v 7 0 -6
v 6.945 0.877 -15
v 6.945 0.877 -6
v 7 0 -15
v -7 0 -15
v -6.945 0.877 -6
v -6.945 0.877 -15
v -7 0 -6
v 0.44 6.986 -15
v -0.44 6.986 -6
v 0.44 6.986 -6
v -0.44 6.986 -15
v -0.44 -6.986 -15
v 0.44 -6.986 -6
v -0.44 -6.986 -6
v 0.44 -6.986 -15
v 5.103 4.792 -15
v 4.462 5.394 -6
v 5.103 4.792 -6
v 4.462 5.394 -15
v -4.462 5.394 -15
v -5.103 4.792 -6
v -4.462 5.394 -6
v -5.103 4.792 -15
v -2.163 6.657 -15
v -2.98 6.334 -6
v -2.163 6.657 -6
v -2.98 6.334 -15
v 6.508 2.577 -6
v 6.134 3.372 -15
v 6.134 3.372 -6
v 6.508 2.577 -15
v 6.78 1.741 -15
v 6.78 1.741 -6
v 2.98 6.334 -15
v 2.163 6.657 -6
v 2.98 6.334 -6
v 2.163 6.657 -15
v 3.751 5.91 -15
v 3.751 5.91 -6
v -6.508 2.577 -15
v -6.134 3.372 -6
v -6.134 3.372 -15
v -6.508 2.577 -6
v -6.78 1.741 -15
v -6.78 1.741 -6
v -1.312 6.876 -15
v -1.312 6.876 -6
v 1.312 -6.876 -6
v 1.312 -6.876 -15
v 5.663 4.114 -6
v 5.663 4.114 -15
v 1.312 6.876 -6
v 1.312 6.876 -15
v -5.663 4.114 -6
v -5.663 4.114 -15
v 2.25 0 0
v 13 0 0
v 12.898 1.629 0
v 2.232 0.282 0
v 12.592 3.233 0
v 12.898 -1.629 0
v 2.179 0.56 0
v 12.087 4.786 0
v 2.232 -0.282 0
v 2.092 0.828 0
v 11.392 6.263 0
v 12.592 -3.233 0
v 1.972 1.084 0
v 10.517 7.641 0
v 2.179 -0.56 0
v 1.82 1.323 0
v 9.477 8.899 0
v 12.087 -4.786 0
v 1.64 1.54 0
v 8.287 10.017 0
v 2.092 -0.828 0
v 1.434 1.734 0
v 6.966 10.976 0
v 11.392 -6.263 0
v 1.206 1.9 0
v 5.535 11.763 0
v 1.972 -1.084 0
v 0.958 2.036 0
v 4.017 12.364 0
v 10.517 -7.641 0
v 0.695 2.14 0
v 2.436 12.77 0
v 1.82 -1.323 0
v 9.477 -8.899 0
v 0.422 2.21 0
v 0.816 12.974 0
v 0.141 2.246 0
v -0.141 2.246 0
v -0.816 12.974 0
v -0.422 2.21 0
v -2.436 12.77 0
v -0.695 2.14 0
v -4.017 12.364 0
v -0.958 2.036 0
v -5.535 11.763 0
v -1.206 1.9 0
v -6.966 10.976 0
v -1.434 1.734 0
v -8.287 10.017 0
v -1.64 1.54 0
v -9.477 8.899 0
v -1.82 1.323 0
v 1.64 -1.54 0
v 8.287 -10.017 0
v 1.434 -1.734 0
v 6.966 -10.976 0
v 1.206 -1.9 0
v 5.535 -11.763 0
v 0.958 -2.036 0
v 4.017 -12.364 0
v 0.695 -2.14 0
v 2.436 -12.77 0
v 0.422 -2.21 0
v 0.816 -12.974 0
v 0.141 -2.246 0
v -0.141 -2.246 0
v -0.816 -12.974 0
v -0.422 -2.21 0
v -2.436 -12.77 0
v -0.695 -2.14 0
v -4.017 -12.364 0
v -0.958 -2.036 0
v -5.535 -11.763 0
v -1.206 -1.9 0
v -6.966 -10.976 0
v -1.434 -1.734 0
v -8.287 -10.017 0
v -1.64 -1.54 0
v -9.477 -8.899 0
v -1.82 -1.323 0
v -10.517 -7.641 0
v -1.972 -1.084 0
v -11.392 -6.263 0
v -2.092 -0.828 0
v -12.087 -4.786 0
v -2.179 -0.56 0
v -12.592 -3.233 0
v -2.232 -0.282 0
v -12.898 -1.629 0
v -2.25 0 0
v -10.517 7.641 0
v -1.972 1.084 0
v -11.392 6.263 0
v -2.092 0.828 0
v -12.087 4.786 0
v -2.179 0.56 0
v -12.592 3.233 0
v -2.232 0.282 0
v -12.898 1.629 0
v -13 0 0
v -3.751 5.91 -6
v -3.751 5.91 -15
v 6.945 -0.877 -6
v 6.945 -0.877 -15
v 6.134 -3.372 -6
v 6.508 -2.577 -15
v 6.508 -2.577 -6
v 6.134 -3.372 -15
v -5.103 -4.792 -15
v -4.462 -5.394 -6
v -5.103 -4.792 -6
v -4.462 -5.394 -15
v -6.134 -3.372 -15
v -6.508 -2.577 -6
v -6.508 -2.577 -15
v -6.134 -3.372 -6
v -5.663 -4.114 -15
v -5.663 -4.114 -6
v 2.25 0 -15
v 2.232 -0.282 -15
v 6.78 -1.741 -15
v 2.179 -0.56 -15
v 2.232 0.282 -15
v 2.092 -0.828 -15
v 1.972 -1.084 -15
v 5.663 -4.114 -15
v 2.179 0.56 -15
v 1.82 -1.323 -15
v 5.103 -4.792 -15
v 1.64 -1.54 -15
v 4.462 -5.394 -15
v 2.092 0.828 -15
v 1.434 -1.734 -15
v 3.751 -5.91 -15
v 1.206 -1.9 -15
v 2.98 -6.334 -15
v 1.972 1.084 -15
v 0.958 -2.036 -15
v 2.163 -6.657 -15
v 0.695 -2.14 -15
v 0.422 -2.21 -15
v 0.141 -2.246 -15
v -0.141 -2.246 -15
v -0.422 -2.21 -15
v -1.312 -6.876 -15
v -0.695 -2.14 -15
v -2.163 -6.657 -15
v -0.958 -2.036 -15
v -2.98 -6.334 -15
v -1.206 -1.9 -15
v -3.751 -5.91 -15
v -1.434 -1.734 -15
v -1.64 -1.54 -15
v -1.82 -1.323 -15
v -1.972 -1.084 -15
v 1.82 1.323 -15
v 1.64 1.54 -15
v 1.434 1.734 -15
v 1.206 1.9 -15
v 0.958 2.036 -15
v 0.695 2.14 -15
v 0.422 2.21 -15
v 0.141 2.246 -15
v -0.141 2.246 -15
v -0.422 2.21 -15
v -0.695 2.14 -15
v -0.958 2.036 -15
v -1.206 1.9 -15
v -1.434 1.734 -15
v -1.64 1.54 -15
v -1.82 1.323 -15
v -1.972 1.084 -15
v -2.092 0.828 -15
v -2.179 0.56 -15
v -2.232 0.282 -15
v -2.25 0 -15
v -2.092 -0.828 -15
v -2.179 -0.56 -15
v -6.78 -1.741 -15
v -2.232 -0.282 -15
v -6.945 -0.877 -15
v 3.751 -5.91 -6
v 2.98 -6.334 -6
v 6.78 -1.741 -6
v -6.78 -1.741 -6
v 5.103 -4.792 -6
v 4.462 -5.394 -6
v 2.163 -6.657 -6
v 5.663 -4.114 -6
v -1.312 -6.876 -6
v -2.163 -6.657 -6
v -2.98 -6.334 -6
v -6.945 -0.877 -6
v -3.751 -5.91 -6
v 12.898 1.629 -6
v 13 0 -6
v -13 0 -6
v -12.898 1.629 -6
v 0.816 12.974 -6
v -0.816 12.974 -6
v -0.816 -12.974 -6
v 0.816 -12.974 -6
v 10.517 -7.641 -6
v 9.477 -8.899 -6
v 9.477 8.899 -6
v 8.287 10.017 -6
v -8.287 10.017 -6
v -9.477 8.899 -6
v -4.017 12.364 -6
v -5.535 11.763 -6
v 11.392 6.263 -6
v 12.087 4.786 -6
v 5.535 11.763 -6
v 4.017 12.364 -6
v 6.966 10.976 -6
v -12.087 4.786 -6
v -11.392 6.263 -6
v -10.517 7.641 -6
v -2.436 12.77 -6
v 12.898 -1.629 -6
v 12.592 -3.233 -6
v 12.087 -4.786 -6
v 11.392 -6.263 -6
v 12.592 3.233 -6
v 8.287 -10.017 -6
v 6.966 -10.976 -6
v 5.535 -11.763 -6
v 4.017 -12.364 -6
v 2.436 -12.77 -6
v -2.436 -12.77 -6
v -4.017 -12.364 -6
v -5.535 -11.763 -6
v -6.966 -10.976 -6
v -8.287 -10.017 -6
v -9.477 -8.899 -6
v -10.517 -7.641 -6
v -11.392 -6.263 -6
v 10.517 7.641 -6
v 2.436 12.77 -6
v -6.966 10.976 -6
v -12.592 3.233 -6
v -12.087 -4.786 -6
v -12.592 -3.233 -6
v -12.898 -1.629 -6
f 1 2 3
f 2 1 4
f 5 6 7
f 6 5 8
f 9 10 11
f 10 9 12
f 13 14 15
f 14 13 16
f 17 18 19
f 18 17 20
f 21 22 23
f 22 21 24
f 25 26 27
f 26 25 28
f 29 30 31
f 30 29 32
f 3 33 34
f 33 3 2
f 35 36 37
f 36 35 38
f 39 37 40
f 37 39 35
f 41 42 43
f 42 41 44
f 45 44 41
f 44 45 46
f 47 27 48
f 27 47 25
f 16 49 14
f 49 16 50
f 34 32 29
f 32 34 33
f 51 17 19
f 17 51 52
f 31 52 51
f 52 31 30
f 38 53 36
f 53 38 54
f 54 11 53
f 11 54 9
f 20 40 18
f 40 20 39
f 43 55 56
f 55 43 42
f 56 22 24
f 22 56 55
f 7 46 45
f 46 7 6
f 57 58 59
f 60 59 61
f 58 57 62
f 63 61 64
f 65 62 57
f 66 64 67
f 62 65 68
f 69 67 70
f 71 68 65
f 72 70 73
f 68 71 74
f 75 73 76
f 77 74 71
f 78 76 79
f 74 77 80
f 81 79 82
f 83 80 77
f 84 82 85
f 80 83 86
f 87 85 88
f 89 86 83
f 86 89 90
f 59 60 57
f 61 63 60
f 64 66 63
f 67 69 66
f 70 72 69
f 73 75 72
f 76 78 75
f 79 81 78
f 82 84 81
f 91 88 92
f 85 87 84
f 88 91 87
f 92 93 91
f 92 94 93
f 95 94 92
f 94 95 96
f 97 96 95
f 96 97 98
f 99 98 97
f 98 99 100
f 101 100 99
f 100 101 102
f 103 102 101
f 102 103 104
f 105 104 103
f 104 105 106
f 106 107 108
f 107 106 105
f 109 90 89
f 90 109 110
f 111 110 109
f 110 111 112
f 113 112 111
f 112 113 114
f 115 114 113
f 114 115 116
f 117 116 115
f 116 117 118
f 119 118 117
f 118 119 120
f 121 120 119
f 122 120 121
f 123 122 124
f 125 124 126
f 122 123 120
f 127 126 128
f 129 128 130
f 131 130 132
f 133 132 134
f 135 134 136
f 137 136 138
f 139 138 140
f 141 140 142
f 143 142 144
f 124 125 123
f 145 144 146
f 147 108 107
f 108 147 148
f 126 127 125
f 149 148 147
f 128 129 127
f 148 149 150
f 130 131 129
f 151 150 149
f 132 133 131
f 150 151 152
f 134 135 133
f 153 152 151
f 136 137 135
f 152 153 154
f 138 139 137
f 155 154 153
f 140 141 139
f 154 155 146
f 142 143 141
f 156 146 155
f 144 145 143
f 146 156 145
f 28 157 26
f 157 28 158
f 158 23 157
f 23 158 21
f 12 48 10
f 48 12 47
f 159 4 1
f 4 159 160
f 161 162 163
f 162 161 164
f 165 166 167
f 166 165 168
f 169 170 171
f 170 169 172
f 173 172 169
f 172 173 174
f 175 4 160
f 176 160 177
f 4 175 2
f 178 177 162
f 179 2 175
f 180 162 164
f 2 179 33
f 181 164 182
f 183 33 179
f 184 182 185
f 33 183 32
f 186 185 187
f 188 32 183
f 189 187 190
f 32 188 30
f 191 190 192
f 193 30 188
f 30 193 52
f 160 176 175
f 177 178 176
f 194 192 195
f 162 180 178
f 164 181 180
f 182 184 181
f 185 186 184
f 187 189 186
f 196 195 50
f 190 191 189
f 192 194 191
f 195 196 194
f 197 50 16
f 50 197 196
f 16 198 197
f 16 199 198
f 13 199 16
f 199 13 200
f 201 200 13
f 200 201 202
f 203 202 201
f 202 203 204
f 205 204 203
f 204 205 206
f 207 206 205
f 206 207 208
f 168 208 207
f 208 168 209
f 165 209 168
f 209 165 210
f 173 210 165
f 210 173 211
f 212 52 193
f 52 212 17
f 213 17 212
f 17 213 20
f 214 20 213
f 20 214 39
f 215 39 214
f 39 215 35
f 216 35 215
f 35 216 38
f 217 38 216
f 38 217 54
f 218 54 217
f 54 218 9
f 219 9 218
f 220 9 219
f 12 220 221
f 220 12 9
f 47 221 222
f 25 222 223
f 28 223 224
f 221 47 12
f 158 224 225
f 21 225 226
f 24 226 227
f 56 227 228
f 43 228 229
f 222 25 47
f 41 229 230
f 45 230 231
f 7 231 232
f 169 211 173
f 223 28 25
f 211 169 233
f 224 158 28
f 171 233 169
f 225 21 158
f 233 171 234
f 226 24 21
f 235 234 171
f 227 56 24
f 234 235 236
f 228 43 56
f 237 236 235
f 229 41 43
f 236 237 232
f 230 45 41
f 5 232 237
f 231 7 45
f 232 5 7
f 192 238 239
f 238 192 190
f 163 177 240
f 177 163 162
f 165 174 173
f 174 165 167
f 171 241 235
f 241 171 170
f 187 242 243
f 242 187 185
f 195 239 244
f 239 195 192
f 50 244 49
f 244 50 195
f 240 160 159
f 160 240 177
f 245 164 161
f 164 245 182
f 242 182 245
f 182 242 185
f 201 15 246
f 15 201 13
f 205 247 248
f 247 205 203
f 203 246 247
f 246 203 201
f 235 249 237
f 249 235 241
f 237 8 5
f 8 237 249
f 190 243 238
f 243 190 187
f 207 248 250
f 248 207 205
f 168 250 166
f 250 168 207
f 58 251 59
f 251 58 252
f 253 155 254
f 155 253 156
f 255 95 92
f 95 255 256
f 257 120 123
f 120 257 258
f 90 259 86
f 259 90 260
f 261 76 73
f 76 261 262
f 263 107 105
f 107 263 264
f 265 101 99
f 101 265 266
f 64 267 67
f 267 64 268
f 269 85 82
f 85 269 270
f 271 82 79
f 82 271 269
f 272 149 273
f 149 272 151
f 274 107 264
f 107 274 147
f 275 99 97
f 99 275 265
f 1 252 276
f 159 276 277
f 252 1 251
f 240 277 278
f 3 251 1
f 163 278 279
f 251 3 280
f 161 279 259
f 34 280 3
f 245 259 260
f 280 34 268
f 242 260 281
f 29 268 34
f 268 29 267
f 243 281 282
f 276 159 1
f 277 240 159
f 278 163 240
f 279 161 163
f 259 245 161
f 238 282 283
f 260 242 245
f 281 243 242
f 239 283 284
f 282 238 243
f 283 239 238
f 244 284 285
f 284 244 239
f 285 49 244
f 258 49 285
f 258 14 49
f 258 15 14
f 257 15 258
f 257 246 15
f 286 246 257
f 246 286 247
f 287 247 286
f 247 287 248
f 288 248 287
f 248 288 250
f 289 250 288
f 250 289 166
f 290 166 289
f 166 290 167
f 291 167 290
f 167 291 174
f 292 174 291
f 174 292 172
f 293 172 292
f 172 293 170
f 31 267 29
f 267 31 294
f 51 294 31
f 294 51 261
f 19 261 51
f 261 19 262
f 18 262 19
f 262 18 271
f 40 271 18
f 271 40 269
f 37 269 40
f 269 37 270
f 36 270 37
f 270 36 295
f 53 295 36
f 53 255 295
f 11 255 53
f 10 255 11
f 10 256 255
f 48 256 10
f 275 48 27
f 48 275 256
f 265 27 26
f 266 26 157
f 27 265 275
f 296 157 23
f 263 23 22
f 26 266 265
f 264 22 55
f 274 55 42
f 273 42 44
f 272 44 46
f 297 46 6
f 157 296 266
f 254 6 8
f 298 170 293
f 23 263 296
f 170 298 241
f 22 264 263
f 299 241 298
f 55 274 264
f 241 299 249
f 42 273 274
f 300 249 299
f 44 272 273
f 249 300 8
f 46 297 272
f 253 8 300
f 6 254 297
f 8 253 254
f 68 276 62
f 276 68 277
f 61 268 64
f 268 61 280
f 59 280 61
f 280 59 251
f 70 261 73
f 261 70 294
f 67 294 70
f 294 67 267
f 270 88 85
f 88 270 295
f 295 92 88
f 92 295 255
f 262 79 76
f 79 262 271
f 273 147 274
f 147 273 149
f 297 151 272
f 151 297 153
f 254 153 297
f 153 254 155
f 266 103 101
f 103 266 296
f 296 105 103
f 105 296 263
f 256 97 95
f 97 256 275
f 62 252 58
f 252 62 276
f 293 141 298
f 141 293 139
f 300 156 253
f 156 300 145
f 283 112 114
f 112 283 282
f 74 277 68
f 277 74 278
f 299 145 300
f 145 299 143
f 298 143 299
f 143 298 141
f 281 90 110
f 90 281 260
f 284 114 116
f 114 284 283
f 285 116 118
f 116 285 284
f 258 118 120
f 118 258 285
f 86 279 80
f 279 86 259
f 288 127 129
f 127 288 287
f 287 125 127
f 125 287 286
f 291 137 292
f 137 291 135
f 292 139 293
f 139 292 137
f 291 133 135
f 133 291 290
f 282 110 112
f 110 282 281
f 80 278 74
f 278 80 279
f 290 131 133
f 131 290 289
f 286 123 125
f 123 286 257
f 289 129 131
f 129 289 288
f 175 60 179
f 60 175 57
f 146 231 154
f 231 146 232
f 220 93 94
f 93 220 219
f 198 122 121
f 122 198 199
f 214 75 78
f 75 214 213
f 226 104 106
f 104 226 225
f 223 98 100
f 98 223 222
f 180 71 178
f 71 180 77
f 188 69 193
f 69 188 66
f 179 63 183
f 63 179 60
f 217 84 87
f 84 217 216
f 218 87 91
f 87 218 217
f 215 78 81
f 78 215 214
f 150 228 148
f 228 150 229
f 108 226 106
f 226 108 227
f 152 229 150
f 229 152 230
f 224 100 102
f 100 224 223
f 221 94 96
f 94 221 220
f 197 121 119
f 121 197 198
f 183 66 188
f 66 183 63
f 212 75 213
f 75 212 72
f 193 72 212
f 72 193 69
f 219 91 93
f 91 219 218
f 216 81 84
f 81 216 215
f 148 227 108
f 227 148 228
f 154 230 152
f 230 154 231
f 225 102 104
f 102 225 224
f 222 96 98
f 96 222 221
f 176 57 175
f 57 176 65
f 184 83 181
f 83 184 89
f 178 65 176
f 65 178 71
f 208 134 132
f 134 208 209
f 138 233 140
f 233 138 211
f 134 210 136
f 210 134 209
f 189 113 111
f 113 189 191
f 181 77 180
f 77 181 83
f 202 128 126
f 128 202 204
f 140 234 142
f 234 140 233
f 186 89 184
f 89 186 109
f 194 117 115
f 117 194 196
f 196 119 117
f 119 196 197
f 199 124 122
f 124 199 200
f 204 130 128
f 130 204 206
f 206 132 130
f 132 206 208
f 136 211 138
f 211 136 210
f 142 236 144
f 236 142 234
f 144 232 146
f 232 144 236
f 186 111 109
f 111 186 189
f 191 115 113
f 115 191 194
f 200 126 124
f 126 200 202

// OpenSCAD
$fn = 50;


difference() {
	union() {
		translate(v = [0, 0, -15.0000000000]) {
			cylinder(h = 15, r = 7.0000000000);
		}
		translate(v = [0, 0, -6.0000000000]) {
			cylinder(h = 6, r = 13.0000000000);
		}
	}
	union() {
		#translate(v = [0, 0, -15]) {
			cylinder(h = 15, r = 2.2500000000);
		}
	}
}
